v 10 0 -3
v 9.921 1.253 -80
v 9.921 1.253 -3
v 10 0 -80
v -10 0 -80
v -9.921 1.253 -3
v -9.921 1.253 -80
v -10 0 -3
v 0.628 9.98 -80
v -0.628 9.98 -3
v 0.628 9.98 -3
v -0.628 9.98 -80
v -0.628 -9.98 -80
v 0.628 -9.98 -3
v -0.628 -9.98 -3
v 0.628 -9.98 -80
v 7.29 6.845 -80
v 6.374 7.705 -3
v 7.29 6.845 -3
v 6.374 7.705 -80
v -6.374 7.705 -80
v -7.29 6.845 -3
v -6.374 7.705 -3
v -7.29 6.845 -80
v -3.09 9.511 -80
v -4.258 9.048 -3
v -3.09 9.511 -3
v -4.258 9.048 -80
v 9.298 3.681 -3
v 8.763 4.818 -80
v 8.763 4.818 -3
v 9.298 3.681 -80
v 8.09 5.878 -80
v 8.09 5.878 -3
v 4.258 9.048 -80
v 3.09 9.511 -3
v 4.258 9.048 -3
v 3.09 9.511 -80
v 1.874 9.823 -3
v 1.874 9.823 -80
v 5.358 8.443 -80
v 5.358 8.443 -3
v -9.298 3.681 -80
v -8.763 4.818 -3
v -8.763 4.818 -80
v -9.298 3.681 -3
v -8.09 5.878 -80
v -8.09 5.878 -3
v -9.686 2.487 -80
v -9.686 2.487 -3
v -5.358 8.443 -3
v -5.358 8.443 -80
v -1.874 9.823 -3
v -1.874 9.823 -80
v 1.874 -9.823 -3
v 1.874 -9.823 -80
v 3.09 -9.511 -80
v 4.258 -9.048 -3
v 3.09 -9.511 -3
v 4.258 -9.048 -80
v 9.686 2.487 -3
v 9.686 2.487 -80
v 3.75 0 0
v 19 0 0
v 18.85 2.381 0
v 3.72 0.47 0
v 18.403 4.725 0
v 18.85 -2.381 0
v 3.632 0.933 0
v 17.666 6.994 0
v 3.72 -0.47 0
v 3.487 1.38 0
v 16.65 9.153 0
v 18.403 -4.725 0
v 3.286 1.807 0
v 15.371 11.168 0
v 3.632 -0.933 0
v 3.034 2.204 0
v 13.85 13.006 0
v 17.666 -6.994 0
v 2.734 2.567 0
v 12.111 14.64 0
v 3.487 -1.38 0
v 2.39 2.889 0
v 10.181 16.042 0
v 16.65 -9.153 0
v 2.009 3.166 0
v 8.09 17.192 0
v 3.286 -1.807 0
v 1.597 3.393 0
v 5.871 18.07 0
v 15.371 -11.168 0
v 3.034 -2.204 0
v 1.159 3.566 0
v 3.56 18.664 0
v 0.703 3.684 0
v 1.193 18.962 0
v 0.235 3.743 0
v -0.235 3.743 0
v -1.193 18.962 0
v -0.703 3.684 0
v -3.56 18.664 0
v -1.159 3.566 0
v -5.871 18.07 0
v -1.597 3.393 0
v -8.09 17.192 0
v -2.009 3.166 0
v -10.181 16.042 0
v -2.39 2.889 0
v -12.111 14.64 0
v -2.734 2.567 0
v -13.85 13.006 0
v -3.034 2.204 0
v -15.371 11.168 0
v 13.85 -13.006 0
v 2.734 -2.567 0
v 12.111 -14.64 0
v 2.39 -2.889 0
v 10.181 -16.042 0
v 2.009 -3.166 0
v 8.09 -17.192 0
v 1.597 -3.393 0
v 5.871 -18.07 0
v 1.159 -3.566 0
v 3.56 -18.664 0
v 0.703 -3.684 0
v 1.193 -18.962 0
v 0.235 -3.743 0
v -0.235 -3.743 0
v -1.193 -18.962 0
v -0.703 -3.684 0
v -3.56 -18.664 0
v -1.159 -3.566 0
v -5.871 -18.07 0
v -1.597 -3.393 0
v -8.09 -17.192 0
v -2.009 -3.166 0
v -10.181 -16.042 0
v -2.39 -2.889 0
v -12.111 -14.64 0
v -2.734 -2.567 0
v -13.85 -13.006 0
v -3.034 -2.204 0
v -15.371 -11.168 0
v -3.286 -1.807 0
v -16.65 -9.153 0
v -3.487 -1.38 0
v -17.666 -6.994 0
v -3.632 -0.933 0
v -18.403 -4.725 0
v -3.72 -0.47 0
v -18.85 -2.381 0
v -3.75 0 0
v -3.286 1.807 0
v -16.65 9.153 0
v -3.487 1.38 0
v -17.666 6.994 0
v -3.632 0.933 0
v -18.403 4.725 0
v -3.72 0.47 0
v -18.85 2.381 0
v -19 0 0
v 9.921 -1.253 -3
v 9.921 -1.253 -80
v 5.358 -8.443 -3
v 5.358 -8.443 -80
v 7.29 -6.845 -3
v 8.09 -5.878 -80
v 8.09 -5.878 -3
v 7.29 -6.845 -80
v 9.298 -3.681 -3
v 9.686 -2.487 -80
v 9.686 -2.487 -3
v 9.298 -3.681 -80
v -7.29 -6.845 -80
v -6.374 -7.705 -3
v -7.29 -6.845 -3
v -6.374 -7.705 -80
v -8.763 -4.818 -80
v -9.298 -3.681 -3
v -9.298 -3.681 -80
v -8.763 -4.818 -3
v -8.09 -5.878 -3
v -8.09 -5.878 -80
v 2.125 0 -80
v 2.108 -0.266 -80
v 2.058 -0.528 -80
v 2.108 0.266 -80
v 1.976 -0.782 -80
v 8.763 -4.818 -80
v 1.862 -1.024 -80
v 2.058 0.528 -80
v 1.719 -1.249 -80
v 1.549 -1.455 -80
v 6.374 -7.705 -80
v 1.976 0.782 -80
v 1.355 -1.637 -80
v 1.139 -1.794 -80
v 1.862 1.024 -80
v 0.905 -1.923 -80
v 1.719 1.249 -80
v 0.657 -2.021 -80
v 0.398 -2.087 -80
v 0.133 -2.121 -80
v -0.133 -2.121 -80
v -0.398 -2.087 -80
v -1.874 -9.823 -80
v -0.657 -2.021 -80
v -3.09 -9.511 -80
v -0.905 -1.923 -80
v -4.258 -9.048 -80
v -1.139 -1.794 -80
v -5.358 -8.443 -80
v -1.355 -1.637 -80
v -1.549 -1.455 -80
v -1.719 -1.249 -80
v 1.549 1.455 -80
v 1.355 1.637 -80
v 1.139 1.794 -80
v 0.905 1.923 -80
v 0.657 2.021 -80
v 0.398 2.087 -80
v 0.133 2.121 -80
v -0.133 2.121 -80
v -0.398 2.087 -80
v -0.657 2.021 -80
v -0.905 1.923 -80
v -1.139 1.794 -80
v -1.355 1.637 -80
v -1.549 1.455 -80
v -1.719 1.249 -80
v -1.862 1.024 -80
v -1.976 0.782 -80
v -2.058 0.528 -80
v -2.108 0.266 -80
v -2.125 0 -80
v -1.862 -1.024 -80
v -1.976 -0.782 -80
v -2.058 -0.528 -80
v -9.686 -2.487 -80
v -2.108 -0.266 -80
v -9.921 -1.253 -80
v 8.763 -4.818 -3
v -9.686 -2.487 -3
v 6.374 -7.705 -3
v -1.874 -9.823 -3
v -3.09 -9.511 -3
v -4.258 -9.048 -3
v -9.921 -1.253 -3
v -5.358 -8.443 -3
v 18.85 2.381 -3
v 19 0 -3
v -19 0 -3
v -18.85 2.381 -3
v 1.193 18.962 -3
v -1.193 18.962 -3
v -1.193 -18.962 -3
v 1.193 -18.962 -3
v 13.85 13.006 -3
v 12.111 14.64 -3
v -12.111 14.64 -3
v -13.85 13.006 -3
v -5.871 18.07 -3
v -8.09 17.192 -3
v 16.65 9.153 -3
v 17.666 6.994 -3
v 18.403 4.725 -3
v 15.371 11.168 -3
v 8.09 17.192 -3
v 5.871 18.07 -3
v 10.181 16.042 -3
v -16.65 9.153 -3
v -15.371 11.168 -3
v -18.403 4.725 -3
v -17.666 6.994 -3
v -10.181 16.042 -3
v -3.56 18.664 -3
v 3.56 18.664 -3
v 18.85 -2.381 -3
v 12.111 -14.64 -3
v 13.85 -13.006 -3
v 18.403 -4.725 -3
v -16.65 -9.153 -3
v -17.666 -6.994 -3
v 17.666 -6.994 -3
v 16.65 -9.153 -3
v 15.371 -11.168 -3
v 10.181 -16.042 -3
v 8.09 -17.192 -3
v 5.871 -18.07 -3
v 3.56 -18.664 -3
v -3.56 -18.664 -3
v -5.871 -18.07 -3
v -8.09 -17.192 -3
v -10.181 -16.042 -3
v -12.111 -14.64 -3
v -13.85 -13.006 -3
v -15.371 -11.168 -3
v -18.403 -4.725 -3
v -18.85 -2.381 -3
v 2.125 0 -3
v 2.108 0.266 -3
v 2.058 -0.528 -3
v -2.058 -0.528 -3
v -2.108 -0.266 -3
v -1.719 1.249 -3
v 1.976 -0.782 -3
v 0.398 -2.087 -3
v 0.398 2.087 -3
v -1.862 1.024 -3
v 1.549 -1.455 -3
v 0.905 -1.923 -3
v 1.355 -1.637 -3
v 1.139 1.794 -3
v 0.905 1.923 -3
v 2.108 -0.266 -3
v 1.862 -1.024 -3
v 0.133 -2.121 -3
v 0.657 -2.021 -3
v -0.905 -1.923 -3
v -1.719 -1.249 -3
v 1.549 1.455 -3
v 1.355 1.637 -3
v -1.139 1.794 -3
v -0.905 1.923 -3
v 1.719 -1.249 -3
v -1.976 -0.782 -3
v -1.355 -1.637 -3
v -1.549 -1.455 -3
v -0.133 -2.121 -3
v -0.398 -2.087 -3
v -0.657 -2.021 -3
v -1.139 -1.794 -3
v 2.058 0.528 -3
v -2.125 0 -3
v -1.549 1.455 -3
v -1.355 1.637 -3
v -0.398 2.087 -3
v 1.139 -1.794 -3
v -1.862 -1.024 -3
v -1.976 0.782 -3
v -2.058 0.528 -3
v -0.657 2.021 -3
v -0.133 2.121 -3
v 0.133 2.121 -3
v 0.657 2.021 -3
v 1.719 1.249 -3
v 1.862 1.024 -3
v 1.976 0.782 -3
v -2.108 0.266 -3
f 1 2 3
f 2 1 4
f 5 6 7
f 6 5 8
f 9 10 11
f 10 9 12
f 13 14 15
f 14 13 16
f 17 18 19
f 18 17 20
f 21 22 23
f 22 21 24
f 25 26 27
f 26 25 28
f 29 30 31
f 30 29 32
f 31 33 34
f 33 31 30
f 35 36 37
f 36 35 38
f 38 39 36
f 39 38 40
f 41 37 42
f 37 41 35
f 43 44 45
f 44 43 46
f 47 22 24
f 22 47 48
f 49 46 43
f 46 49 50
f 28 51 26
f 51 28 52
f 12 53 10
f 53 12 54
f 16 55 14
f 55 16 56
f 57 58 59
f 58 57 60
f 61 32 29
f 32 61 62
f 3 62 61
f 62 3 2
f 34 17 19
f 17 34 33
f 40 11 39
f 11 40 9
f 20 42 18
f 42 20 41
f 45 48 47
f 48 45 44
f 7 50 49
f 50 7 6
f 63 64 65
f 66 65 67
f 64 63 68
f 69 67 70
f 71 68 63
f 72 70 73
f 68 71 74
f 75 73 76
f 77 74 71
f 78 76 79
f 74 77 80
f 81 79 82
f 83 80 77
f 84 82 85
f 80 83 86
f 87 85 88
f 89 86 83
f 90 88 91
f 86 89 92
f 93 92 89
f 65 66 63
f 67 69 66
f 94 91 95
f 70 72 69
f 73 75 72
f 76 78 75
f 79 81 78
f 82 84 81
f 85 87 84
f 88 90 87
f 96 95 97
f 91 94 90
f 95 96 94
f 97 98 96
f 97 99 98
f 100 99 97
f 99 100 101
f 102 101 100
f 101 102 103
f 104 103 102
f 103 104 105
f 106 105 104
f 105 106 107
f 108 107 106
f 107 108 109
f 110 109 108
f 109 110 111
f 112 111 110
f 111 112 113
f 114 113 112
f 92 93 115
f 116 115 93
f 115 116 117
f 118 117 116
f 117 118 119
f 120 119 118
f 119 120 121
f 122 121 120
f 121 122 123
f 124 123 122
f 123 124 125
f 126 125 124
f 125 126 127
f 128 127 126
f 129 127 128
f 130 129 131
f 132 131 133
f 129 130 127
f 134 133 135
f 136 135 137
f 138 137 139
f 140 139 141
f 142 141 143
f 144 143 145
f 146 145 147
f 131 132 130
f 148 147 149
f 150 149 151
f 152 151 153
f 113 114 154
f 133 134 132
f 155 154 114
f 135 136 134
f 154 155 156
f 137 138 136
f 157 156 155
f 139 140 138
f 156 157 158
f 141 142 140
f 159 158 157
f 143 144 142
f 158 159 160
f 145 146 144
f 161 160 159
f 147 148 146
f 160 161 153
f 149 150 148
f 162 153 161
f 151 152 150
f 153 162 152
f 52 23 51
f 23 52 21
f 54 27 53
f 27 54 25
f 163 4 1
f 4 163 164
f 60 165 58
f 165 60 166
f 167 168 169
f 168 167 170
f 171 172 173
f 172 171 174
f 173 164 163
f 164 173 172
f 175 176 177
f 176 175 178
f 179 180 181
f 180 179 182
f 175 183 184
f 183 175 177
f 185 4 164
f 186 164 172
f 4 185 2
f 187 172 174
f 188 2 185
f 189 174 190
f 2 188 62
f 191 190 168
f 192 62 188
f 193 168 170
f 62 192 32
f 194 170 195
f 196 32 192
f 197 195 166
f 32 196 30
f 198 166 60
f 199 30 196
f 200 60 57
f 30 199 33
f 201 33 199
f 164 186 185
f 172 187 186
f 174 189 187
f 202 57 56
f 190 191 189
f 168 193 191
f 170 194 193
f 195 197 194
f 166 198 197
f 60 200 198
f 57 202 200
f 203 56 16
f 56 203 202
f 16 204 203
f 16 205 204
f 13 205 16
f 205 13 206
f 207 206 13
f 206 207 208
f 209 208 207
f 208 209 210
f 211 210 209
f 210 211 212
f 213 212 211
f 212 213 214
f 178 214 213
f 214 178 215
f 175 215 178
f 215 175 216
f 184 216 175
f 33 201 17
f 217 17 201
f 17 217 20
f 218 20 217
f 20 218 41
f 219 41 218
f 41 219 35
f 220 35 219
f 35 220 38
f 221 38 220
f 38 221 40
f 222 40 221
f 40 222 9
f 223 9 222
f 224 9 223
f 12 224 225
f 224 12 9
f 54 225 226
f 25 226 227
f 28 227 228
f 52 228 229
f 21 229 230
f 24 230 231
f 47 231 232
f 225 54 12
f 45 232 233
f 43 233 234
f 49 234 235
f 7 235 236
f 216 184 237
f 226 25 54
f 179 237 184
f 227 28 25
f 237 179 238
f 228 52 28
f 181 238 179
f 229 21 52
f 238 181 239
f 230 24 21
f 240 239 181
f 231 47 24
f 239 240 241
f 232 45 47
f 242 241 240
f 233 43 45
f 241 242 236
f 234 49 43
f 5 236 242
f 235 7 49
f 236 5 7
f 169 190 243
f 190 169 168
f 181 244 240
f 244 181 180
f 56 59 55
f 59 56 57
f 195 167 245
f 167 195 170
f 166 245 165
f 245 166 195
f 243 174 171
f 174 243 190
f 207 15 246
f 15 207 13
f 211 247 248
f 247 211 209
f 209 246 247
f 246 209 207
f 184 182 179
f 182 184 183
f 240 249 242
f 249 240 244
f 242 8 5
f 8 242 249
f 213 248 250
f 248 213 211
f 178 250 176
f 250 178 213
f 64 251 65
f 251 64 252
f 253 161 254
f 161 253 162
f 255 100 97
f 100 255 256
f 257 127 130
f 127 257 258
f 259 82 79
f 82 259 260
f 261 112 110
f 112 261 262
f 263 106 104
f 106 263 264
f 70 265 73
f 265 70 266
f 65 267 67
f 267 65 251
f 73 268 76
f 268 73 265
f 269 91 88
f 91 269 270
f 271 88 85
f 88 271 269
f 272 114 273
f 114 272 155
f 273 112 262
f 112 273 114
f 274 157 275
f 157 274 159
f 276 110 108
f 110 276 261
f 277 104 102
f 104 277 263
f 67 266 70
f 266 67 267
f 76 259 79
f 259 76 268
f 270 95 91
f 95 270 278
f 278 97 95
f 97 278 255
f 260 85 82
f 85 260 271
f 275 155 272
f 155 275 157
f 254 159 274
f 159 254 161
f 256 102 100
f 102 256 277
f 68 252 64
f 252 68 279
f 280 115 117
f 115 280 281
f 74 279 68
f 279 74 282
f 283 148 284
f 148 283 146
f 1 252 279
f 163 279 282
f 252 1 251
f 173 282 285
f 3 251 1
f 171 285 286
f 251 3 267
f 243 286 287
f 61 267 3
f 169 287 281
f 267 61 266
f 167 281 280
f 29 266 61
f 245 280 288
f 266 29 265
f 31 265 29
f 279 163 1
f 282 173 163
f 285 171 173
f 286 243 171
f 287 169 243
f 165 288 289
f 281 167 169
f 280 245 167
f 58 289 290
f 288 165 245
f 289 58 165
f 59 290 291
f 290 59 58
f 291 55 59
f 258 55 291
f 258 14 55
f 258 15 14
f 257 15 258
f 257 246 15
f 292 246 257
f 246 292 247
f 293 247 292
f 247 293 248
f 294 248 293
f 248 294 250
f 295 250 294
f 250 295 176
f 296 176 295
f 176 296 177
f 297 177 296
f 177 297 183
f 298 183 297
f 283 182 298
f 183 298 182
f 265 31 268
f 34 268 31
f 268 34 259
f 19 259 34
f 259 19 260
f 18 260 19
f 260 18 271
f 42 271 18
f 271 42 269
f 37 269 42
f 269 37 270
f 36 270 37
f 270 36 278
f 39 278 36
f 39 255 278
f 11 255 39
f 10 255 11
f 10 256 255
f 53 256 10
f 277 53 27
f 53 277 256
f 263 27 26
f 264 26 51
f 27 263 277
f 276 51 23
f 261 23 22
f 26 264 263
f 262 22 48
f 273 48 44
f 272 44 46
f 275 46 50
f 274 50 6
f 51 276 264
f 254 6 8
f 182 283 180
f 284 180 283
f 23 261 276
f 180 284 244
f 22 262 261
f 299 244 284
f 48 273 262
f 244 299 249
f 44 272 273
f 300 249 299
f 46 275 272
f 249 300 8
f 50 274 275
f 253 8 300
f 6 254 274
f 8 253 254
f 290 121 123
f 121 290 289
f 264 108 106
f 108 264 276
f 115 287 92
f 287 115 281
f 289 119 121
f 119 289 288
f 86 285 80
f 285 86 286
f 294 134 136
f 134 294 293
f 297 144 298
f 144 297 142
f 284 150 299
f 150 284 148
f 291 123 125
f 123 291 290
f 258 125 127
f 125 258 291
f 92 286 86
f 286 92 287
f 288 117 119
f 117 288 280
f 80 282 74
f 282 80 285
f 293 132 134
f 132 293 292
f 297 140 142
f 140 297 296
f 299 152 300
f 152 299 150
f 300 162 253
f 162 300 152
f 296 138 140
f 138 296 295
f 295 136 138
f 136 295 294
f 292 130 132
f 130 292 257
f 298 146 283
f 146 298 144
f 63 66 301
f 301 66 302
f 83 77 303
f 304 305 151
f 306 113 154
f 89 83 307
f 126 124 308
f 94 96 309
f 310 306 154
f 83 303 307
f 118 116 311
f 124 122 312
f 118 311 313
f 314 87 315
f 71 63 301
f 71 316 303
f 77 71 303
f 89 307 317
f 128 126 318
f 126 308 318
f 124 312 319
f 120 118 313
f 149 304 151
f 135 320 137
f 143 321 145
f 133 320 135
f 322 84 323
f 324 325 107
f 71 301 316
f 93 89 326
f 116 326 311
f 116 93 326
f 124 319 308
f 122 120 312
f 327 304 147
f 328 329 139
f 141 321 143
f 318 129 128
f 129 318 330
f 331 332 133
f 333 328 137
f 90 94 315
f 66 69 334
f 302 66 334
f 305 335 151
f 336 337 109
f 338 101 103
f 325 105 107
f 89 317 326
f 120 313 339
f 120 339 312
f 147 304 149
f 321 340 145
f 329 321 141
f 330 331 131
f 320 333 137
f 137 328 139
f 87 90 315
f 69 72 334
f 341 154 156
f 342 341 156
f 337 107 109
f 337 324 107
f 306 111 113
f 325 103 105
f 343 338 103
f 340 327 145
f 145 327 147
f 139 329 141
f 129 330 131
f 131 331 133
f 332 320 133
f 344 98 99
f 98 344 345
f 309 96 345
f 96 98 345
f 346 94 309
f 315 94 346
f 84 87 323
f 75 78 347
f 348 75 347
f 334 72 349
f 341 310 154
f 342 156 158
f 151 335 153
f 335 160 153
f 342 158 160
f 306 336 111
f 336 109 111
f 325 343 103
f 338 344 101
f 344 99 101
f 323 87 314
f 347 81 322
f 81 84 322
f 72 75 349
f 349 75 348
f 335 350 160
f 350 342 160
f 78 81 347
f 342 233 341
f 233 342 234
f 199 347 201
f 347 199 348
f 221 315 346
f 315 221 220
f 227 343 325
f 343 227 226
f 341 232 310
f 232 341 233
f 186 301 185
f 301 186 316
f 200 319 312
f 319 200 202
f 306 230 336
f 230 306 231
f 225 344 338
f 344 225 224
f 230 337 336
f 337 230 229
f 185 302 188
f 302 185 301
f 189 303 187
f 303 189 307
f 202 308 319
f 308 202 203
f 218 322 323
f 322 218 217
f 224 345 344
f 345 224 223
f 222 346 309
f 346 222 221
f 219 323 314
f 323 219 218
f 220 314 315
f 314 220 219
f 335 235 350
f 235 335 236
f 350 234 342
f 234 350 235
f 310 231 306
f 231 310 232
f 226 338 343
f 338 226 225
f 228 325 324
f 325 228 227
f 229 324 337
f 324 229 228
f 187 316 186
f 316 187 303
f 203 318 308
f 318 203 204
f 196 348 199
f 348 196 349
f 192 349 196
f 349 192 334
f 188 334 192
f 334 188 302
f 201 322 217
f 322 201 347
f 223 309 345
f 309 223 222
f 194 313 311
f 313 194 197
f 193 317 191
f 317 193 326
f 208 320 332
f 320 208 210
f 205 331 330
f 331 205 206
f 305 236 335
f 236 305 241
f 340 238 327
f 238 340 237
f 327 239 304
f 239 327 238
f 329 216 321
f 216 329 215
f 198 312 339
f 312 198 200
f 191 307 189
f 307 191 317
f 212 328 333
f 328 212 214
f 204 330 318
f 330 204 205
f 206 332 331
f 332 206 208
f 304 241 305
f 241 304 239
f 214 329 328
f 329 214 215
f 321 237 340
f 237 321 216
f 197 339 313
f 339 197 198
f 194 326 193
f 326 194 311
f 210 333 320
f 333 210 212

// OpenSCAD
$fn = 50;


difference() {
	union() {
		translate(v = [0, 0, -80.0000000000]) {
			cylinder(h = 80, r = 10.0000000000);
		}
		translate(v = [0, 0, -3.0000000000]) {
			cylinder(h = 3, r = 19.0000000000);
		}
	}
	union() {
		translate(v = [0, 0, 0]) {
			rotate(a = [0, 0, 0]) {
				difference() {
					union() {
						#translate(v = [0, 0, -80.0000000000]) {
							cylinder(h = 80, r = 2.0000000000);
						}
						#translate(v = [0, 0, -3]) {
							cylinder(h = 3, r = 10.0000000000, r1 = 2.1250000000, r2 = 3.7500000000);
						}
						#translate(v = [0, 0, -80.0000000000]) {
							cylinder(h = 80, r = 2.1250000000);
						}
						#translate(v = [0, 0, -80.0000000000]) {
							cylinder(h = 80, r = 2.0000000000);
						}
					}
					union();
				}
			}
		}
	}
}
